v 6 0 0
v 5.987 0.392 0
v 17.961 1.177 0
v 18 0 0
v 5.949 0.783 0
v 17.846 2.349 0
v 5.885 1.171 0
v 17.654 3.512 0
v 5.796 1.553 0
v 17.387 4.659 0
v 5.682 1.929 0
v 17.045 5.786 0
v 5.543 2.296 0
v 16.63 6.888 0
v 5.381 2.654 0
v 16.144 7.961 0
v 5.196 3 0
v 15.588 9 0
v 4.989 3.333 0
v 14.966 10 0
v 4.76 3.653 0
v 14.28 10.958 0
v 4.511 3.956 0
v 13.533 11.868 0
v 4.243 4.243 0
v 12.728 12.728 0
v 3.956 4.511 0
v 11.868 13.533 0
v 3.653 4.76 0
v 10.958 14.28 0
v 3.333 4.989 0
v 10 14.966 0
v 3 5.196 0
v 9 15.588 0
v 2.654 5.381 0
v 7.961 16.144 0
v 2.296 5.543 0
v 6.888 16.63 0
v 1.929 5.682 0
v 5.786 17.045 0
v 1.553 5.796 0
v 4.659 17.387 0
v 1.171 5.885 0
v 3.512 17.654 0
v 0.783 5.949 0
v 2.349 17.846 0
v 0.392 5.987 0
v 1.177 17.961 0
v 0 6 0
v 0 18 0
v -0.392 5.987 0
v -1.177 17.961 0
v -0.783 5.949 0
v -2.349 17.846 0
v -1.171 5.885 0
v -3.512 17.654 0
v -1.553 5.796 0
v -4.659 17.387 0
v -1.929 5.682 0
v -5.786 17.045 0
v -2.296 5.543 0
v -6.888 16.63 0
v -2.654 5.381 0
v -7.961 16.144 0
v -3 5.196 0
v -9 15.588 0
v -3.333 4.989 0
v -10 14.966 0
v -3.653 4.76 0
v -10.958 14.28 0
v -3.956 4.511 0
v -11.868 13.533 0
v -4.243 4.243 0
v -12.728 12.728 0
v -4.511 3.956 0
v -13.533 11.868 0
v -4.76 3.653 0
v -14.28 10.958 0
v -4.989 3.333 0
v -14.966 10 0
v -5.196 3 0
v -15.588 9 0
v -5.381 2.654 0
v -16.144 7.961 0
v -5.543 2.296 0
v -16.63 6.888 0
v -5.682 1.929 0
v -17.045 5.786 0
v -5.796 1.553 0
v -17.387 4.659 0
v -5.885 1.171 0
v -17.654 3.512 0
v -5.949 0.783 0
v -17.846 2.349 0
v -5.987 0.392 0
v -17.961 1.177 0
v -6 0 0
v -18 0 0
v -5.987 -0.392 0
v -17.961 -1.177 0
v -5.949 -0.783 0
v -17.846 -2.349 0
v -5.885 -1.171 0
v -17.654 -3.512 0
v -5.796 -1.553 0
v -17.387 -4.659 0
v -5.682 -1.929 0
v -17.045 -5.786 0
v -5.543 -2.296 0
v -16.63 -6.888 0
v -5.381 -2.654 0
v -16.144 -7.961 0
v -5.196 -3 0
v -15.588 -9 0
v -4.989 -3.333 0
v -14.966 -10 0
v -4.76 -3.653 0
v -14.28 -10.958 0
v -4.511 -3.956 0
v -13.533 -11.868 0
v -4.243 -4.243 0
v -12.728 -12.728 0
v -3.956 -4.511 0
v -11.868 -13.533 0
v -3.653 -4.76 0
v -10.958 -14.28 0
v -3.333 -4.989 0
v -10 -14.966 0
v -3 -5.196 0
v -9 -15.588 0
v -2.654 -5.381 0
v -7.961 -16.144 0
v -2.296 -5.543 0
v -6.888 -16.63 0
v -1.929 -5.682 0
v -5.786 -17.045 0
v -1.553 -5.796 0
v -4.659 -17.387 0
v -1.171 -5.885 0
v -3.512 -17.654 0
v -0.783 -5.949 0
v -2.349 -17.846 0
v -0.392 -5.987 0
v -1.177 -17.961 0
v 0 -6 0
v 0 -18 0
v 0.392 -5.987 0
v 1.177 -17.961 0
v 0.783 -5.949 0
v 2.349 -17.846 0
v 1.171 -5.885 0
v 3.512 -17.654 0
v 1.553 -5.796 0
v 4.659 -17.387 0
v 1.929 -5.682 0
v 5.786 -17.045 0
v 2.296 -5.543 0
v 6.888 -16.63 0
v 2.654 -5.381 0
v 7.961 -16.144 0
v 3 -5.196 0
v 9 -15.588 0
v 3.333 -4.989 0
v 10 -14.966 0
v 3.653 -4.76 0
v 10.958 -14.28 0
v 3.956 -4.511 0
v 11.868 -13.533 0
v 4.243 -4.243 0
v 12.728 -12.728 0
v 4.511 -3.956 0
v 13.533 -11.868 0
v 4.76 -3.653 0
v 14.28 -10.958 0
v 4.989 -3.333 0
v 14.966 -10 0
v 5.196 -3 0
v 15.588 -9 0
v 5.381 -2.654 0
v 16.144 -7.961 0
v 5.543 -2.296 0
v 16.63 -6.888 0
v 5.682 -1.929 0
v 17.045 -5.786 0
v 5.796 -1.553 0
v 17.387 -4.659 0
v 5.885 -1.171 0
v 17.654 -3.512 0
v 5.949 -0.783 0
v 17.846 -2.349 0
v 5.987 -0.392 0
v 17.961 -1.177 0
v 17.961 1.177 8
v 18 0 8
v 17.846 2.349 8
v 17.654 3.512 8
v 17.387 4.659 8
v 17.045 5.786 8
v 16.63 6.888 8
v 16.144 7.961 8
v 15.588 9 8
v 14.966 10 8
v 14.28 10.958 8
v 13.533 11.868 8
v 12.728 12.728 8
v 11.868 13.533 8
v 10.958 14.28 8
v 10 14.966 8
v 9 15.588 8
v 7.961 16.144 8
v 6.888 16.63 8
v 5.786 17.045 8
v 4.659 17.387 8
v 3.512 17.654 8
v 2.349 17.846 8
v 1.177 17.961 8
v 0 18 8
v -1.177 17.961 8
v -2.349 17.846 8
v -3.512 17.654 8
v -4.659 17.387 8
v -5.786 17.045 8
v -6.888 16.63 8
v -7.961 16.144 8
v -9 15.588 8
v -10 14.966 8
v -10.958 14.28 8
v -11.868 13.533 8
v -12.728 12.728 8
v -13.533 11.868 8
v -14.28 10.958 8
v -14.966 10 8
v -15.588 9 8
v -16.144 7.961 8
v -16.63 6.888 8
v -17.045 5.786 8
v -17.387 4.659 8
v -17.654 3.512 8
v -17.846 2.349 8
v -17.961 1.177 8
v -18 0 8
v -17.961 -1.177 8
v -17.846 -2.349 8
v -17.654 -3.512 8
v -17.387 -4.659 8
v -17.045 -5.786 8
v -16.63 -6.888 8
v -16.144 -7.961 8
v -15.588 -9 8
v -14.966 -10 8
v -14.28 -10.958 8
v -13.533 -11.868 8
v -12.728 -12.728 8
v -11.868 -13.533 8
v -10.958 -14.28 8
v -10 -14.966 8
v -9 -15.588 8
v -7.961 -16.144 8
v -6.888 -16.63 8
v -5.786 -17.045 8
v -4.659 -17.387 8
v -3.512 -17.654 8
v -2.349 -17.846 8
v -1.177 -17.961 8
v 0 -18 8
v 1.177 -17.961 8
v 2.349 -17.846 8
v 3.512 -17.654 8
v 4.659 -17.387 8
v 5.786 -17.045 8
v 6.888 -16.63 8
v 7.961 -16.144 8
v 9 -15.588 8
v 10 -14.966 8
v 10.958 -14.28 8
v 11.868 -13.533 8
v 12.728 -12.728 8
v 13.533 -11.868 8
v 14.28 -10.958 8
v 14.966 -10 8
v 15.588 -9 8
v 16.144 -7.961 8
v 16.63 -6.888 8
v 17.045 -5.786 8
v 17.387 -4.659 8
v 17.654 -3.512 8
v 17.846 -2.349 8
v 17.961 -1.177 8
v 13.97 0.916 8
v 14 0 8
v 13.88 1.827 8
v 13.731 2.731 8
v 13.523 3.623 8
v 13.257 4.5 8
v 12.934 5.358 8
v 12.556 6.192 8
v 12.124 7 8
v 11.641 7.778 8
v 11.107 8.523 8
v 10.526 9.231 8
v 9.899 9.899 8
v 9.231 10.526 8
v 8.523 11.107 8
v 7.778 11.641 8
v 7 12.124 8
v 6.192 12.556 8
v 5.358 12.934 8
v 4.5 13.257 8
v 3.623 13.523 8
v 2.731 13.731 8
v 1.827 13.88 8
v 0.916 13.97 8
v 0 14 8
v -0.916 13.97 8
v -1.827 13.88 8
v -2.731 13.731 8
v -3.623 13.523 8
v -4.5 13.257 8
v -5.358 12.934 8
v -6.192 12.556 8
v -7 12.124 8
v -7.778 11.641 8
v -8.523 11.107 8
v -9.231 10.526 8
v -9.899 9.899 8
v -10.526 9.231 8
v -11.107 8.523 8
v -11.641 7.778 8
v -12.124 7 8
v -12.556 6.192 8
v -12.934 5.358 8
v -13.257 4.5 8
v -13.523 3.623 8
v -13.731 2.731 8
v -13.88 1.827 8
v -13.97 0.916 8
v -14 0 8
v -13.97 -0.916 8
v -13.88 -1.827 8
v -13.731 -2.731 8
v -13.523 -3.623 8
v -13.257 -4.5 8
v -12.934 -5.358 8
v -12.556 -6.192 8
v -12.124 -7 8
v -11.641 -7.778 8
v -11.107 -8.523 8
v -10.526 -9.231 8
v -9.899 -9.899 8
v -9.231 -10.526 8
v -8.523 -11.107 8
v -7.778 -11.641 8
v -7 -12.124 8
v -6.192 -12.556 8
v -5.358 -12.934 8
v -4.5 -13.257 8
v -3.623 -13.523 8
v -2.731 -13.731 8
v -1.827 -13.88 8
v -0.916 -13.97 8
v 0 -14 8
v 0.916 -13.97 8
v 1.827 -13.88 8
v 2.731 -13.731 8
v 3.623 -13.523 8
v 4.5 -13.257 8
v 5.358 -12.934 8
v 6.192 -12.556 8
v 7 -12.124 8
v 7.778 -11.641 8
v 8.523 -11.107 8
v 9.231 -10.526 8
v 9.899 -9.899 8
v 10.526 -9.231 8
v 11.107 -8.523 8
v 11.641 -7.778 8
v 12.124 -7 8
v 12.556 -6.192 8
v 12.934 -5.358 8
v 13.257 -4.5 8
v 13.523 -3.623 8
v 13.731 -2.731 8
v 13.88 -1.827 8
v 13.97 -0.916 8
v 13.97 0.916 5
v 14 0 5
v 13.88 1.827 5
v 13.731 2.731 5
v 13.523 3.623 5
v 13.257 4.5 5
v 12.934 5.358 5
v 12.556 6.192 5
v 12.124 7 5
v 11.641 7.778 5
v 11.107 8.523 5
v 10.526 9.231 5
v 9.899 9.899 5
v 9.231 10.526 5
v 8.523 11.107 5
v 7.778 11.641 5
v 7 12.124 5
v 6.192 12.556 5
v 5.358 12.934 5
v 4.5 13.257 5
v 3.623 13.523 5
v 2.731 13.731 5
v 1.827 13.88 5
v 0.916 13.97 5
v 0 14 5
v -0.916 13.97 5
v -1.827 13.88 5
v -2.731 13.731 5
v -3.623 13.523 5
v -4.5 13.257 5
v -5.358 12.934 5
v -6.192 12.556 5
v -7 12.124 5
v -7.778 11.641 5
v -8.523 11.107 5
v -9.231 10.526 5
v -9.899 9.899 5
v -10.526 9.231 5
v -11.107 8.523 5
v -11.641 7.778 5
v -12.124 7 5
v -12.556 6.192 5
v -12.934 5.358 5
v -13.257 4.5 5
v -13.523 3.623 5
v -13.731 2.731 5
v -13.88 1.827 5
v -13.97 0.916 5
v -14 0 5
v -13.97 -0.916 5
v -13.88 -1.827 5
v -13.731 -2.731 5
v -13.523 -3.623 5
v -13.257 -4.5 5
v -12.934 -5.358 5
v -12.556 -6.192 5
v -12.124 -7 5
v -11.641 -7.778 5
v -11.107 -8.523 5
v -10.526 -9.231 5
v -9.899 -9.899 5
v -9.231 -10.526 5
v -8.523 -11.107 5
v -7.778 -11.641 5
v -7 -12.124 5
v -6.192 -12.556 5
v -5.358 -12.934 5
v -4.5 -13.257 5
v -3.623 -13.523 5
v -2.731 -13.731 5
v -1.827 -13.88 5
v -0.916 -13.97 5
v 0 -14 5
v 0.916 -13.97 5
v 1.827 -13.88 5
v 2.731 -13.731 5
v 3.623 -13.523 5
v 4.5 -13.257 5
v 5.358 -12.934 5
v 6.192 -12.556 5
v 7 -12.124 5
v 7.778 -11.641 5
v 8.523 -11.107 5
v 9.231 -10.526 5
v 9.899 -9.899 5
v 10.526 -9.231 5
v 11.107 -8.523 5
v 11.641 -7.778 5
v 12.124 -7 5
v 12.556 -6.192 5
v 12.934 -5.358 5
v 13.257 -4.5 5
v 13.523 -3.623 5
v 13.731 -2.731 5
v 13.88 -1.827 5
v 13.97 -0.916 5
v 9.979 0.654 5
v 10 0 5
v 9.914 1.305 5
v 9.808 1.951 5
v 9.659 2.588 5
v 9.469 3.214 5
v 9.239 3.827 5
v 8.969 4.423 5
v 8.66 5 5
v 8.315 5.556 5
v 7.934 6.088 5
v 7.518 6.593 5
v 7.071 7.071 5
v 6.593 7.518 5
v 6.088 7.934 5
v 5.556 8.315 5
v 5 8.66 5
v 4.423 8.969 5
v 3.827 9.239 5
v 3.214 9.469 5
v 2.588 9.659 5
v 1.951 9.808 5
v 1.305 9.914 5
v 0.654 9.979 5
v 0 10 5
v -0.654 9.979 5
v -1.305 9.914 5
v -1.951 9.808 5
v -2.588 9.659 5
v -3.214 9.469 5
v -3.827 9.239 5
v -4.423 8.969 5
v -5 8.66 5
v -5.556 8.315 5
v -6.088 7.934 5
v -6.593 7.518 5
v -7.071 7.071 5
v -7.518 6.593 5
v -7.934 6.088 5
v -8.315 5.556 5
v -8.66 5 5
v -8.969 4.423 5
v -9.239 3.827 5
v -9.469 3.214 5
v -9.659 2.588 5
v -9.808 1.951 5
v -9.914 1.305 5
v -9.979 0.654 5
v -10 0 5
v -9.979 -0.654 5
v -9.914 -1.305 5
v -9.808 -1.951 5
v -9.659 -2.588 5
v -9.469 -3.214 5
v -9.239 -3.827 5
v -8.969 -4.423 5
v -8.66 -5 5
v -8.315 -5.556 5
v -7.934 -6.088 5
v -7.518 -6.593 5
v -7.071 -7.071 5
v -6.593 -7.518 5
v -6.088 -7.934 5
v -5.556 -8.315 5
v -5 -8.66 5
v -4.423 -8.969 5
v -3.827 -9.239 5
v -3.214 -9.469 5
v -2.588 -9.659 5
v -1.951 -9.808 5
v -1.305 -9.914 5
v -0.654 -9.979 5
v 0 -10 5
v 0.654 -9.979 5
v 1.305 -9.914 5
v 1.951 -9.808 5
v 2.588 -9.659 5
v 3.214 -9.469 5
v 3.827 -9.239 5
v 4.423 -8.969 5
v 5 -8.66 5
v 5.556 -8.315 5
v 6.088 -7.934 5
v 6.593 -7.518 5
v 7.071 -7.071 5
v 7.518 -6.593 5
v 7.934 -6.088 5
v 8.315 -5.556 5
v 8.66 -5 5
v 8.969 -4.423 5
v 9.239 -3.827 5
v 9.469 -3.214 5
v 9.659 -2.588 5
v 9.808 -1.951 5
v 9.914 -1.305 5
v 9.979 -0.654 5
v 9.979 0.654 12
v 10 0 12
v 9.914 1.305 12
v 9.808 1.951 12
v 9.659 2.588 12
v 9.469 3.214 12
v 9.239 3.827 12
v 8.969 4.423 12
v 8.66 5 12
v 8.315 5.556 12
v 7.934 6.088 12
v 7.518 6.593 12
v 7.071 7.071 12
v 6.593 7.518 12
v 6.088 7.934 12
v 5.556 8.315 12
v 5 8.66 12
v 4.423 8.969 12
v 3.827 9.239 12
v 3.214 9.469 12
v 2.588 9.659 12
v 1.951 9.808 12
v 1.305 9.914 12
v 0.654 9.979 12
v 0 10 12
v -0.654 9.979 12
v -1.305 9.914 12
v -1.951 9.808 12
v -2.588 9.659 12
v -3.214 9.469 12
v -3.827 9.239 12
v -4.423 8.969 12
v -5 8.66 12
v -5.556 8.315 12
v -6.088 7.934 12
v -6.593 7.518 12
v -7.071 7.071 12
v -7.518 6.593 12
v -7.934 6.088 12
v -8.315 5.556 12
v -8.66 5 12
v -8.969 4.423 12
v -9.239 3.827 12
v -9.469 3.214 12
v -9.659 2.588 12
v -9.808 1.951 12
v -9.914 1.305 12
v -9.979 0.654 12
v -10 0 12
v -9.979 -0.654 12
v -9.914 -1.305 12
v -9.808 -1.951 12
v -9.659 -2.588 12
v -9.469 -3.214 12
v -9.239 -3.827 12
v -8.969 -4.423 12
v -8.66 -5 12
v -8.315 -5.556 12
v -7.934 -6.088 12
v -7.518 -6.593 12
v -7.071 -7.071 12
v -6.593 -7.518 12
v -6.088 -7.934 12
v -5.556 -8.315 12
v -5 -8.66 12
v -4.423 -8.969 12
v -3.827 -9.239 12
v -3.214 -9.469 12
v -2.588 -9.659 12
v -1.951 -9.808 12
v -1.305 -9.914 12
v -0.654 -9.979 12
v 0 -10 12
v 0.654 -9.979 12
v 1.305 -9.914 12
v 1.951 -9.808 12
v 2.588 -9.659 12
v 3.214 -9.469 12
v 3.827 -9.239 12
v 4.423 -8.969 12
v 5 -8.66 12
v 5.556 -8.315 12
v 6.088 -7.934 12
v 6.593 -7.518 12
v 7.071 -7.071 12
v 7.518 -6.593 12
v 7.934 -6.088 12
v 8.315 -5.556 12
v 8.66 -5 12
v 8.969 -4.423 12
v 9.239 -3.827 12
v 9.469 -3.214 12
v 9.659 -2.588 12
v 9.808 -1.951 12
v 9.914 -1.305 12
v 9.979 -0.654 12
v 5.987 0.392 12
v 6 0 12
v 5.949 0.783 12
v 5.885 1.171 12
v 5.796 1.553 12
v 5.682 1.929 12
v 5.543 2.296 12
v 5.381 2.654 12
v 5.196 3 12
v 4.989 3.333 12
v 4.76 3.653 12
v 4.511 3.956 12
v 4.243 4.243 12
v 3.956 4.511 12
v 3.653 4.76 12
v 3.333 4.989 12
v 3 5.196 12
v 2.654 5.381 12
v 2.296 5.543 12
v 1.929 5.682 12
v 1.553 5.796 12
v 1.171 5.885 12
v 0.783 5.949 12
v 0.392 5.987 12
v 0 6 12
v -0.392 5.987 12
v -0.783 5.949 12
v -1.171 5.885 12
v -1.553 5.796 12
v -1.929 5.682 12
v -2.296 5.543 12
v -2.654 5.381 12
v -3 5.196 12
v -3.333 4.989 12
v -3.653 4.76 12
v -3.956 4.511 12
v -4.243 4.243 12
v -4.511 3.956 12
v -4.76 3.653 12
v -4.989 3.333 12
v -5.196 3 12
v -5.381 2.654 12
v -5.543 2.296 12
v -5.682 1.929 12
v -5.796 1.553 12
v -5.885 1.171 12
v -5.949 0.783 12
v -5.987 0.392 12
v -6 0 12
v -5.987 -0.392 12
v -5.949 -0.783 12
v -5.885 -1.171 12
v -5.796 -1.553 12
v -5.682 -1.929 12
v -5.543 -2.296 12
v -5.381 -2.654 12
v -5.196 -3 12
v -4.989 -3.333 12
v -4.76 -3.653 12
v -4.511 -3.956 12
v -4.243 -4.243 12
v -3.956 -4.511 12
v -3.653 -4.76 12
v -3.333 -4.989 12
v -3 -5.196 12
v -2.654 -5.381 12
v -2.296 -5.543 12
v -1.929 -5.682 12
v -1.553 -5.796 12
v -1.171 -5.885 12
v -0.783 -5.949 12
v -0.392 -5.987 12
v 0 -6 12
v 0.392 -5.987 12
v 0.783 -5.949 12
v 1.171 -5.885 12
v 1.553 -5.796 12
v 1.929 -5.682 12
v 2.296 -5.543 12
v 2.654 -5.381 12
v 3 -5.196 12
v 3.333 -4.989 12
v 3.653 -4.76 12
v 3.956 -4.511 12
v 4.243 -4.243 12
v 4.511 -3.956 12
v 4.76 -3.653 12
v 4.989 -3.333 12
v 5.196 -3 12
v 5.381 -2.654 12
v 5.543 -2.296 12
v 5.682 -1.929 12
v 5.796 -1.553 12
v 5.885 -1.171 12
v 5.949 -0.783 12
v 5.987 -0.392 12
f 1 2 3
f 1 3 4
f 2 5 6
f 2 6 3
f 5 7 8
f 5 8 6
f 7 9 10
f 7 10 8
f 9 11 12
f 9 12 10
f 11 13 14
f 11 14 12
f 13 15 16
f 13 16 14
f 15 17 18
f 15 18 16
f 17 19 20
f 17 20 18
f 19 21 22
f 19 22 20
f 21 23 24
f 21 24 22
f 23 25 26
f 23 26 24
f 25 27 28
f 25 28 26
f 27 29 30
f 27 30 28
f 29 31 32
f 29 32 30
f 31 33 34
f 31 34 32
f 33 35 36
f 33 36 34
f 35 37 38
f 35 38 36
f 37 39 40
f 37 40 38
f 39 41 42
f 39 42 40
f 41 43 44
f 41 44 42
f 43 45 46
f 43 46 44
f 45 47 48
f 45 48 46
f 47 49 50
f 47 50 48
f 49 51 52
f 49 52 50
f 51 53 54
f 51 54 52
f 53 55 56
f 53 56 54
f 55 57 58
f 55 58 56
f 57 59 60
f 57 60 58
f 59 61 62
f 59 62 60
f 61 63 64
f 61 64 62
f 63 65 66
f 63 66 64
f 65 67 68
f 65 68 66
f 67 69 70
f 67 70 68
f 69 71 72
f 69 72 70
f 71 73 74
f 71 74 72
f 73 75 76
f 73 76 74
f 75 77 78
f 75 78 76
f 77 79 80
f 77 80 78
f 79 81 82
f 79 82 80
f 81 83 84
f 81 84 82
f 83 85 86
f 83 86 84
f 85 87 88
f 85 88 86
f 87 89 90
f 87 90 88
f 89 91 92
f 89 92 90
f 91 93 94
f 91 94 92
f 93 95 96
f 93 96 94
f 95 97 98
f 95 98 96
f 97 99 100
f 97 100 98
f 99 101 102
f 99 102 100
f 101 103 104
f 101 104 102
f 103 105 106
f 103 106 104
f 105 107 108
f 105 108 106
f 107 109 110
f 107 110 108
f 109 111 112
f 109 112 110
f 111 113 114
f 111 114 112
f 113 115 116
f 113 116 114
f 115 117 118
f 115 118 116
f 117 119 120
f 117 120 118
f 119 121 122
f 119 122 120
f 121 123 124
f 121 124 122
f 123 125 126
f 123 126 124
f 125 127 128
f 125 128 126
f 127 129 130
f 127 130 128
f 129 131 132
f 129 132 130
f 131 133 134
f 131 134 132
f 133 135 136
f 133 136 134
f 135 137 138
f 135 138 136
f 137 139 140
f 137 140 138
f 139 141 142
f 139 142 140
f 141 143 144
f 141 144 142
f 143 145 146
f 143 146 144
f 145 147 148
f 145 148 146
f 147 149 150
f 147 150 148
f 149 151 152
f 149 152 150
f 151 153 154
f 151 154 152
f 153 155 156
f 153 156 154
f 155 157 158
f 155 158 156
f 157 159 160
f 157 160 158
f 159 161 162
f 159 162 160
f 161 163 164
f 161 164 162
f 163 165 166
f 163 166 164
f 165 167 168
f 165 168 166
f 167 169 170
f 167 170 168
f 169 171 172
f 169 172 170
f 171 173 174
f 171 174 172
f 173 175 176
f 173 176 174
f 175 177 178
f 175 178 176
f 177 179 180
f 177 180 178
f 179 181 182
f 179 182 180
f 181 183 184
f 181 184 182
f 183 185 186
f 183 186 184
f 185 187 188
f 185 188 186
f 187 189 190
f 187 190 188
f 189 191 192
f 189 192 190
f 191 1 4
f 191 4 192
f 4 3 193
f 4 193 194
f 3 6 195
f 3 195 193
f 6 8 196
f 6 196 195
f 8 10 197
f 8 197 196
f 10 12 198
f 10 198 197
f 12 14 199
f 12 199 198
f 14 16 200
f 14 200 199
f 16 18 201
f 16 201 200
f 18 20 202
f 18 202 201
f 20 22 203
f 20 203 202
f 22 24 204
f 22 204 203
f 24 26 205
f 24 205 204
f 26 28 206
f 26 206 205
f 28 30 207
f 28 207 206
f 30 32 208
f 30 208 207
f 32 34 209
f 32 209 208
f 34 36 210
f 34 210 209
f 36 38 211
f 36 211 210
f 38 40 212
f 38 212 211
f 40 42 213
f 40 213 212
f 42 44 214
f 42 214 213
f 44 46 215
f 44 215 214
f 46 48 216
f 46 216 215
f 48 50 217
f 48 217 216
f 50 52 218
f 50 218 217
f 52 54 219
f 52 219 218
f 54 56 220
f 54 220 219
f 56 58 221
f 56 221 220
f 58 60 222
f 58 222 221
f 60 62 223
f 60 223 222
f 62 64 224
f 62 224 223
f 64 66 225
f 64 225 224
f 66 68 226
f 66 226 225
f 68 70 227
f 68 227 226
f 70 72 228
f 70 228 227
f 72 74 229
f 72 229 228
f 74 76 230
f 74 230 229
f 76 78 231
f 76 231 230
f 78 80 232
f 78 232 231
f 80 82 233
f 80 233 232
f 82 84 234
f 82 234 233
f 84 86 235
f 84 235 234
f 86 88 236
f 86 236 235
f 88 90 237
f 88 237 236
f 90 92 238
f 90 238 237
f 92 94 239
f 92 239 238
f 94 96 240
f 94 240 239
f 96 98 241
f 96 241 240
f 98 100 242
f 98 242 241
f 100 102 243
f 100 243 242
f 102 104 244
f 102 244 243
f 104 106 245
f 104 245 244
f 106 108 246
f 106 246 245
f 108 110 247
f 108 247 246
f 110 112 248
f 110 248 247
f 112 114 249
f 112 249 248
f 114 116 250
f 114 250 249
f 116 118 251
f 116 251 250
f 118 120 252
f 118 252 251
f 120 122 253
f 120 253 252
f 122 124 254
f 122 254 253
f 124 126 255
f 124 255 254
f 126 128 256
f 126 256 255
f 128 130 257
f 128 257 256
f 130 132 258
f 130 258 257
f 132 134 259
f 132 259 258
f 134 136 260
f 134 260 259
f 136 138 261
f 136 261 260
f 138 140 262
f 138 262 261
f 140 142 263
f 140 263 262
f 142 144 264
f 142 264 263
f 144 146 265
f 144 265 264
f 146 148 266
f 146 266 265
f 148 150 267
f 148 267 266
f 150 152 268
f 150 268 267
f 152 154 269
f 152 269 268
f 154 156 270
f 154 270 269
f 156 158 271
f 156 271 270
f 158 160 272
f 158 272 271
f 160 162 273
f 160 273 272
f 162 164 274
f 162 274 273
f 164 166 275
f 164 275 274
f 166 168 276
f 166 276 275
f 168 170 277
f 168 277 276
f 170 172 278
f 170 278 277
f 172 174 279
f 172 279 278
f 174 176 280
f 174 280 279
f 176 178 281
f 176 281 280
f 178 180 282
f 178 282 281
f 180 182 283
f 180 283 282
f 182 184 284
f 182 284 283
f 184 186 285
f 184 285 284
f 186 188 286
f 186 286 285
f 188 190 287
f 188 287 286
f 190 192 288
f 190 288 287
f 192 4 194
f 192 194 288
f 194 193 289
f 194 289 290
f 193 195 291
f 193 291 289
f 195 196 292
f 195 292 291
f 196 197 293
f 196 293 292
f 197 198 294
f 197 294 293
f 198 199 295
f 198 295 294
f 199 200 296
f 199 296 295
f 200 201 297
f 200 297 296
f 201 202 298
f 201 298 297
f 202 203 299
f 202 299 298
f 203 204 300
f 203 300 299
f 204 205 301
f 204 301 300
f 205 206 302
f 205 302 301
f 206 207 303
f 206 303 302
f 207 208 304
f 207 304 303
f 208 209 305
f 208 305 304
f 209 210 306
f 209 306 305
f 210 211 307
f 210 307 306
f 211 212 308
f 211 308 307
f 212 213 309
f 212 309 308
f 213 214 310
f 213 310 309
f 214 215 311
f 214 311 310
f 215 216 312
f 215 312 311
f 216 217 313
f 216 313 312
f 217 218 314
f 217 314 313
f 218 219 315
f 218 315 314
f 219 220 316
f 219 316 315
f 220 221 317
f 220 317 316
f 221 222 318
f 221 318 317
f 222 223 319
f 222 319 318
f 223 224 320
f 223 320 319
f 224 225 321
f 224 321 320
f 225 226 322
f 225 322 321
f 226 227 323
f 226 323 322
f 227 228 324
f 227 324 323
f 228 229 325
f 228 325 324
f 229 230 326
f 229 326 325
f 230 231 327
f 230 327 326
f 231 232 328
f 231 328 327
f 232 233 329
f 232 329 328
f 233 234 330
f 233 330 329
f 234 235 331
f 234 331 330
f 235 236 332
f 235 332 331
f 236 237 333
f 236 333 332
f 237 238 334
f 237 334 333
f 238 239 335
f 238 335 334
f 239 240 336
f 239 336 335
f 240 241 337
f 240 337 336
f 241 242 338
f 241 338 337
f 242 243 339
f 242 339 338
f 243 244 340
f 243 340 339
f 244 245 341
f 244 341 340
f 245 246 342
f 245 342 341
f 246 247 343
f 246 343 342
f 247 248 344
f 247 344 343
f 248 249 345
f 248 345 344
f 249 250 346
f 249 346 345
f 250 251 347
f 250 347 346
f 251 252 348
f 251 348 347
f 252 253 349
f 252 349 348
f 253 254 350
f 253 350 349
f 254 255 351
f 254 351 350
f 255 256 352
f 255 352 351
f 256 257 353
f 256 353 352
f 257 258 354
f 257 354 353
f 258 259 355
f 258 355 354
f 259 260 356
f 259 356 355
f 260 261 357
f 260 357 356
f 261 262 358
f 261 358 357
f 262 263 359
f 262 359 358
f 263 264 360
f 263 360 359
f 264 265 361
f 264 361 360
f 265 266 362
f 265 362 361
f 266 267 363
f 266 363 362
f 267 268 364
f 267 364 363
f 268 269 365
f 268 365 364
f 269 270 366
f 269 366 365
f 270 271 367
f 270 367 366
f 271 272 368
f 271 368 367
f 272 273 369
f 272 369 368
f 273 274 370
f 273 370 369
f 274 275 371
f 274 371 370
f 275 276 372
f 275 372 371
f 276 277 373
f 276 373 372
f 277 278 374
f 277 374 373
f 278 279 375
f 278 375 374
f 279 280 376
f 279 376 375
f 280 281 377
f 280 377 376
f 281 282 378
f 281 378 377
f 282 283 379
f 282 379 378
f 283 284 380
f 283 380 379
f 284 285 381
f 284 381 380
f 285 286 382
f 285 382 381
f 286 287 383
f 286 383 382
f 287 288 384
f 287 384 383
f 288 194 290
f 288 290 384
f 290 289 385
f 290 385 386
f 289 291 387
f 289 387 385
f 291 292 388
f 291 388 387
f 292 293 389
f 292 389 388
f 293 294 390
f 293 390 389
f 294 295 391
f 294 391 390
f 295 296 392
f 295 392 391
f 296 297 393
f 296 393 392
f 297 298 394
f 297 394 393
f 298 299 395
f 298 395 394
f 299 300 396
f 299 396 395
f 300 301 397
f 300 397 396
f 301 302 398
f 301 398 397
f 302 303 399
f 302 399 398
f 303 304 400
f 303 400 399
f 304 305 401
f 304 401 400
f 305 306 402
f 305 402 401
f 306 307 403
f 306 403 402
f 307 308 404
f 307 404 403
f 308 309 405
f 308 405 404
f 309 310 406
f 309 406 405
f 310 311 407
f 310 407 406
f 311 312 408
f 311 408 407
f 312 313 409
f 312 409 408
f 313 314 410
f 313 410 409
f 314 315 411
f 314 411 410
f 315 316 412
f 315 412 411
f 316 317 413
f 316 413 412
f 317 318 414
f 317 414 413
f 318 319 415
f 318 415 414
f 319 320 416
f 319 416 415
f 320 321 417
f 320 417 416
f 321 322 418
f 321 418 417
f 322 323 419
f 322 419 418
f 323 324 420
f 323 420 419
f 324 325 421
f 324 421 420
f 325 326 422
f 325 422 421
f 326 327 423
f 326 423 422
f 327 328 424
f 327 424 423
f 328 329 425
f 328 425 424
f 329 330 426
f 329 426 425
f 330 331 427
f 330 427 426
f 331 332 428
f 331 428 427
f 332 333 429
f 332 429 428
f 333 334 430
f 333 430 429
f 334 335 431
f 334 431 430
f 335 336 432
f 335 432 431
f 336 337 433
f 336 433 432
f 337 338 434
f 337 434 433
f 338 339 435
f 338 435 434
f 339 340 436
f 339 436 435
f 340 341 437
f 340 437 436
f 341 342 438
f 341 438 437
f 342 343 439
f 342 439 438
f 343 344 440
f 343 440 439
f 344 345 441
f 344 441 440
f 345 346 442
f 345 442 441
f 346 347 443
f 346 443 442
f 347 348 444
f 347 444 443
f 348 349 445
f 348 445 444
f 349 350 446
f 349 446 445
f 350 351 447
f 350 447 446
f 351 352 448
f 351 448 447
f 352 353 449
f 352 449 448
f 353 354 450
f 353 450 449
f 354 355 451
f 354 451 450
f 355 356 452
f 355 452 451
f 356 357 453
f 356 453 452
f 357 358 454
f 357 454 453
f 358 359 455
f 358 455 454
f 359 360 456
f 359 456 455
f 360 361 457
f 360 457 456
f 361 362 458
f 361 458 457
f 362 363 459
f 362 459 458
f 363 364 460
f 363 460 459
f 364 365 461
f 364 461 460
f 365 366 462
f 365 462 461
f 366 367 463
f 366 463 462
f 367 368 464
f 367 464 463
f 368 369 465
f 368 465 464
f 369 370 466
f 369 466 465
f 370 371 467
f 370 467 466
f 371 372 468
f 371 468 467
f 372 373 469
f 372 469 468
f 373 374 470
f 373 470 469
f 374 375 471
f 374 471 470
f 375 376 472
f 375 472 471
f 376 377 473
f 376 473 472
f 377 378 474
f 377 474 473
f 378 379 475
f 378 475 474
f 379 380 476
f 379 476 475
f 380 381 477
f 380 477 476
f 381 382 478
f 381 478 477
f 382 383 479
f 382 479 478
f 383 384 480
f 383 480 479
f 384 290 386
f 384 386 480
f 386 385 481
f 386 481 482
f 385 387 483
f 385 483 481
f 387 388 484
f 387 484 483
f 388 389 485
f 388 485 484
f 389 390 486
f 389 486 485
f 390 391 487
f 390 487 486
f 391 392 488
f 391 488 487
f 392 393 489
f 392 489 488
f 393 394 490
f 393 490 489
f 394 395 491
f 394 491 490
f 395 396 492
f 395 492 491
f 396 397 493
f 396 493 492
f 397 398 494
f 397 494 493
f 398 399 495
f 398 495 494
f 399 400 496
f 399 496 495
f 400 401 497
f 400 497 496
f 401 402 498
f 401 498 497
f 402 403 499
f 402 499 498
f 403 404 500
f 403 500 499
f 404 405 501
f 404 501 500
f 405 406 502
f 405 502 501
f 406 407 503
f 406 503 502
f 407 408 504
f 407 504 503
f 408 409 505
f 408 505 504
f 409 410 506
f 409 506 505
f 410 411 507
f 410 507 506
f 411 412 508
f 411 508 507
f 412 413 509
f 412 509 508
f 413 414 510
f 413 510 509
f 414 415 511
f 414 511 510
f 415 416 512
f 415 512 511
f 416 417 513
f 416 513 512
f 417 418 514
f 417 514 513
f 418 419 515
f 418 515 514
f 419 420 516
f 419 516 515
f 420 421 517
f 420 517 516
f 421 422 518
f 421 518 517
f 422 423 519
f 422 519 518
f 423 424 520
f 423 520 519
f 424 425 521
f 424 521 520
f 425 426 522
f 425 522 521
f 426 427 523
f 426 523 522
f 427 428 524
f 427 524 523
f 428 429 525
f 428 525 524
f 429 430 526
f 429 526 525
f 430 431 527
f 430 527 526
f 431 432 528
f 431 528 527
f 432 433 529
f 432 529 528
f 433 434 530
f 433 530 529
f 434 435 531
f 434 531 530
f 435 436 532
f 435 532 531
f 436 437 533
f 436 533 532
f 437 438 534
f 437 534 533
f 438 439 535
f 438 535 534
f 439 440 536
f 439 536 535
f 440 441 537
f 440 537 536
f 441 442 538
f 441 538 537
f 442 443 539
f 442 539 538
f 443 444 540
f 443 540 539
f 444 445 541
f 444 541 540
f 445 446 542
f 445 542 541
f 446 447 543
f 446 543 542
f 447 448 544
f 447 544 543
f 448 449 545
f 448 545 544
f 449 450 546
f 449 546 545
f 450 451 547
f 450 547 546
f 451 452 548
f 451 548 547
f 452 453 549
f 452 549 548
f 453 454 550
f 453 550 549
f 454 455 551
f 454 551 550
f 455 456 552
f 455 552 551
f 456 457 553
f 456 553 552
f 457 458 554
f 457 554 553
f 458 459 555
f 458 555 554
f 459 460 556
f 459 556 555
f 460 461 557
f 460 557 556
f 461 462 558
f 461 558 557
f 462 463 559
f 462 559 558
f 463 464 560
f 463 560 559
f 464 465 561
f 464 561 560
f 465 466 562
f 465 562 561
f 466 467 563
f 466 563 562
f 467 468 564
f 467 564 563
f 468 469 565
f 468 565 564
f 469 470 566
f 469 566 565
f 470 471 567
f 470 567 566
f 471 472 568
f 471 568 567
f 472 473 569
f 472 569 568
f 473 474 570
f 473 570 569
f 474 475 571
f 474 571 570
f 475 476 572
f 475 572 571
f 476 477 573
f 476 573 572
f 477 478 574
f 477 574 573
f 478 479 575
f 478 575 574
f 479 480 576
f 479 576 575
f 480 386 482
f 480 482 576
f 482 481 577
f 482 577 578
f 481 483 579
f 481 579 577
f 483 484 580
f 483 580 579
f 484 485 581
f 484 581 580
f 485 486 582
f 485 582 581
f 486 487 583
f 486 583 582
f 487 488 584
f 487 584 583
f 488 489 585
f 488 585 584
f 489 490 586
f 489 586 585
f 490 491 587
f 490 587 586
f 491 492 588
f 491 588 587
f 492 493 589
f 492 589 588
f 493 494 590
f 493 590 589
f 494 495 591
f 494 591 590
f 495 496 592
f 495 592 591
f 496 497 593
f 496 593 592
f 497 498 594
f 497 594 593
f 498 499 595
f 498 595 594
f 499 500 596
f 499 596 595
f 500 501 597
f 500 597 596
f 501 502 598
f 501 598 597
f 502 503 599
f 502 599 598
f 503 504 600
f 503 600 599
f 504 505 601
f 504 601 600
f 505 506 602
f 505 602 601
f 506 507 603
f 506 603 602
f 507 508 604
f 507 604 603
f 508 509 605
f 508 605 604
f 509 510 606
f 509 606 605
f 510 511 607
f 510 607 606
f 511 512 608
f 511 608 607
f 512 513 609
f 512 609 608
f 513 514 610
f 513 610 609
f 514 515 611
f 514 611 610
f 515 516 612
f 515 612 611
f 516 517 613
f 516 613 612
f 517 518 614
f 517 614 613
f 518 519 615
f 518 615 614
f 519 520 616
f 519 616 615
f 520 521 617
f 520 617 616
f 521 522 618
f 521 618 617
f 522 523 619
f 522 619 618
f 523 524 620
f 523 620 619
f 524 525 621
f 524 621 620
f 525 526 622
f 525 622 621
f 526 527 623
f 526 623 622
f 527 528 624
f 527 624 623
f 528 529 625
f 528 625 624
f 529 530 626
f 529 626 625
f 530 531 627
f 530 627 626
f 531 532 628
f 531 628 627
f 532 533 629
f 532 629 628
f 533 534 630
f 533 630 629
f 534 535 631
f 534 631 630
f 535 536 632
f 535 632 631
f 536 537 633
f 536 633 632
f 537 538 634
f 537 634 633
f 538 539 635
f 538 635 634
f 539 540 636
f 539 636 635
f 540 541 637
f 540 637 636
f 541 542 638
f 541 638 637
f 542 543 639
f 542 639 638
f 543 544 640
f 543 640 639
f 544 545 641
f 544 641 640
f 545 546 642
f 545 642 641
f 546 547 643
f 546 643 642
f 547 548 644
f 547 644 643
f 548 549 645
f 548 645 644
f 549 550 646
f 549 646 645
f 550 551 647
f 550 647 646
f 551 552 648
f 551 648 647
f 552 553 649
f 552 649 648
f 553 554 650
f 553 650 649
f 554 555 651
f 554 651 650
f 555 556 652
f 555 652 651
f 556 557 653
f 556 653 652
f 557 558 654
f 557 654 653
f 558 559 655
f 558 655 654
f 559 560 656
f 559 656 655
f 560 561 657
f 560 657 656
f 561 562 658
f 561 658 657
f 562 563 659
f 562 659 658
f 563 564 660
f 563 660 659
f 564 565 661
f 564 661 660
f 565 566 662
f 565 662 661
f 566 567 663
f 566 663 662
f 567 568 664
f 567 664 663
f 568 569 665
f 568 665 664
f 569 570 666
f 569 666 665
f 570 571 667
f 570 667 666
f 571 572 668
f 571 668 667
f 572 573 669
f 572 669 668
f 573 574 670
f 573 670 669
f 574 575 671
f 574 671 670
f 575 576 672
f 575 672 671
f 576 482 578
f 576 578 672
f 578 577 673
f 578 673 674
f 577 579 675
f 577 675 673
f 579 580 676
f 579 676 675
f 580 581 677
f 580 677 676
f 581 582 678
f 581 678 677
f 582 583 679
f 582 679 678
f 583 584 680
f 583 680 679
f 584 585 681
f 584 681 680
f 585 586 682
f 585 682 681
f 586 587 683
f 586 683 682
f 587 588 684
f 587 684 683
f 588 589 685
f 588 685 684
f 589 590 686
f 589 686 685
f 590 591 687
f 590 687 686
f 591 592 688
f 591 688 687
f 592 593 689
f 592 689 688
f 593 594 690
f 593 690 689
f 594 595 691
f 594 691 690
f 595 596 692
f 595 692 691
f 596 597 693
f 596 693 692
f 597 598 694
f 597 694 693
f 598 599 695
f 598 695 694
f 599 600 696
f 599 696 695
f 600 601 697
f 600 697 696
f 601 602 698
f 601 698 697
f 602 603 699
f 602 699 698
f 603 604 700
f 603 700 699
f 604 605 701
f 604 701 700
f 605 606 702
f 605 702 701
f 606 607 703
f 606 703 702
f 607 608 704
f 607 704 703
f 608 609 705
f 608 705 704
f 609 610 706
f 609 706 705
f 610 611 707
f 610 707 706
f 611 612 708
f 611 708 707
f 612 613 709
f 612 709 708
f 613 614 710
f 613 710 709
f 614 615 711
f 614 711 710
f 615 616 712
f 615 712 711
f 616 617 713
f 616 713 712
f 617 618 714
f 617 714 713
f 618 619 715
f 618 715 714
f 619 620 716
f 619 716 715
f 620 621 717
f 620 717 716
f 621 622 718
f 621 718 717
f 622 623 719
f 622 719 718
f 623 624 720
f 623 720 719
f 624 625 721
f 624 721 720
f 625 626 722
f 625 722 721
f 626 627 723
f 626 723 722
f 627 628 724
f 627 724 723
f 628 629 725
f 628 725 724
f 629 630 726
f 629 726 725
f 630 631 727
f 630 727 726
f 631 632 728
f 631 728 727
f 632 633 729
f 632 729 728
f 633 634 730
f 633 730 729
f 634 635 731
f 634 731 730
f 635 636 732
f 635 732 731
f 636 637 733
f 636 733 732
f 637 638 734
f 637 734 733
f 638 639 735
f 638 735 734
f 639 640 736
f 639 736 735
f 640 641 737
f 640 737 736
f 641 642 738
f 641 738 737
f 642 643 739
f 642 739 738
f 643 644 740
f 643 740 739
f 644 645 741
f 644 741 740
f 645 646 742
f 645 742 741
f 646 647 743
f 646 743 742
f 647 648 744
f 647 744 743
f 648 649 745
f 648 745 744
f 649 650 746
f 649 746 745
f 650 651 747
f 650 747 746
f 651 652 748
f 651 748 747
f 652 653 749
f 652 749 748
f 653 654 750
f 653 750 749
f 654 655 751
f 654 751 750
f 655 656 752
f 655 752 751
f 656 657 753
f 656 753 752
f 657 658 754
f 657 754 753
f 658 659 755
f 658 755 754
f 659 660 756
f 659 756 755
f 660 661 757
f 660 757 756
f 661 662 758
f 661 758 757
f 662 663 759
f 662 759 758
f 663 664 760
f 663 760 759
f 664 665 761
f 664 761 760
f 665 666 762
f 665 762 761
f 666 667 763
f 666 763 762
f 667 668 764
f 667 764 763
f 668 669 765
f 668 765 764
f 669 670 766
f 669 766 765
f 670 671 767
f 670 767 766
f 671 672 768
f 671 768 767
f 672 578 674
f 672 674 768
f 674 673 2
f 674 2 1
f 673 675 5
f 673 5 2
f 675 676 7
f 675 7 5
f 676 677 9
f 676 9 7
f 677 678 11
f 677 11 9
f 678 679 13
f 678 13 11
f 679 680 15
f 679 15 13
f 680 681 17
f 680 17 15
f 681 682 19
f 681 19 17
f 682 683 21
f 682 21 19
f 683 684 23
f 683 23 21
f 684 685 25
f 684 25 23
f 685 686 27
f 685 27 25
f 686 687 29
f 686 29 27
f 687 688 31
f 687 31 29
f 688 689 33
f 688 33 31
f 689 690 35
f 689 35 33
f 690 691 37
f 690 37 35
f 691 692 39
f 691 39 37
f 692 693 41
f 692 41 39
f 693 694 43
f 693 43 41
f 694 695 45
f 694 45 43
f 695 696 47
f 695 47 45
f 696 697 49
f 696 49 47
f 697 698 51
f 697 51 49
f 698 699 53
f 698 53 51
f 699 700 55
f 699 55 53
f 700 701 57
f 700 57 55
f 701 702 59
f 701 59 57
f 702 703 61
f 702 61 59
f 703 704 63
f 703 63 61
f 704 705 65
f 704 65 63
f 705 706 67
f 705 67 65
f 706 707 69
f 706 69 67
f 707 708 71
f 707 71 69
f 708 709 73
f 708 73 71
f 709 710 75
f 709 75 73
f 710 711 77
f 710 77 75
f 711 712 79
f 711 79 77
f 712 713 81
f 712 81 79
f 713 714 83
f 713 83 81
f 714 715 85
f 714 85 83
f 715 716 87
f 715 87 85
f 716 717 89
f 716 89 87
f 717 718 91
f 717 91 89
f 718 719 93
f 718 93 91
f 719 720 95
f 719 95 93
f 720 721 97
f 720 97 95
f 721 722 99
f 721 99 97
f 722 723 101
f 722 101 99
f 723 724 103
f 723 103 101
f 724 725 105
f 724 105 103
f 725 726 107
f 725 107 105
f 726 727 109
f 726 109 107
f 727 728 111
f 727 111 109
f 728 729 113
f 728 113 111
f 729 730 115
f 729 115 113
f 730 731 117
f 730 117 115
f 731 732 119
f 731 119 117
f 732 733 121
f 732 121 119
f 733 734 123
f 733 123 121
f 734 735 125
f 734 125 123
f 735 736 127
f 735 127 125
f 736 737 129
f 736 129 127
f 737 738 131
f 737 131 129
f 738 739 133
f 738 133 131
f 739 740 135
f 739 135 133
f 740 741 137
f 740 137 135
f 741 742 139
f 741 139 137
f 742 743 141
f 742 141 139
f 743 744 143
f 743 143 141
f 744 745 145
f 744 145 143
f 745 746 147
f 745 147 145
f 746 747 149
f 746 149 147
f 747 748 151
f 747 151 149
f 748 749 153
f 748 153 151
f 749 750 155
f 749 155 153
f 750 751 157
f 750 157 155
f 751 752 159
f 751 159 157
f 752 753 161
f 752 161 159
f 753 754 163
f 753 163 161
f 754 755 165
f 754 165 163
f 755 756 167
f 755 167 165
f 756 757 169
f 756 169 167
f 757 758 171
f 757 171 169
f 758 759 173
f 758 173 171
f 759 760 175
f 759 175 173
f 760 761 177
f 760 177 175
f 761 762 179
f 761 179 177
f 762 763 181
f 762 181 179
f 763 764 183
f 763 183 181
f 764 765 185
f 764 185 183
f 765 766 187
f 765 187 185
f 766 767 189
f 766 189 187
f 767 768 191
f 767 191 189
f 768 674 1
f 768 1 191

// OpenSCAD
// Original MechIntel educational model. CC0-1.0. Units: mm.
// Not a standardized or load-rated component.
$fn=96;
// Section points: [radius, height], mm. Edit to change the profile.
section=[[6, 0], [18, 0], [18, 8], [14, 8], [14, 5], [10, 5], [10, 12], [6, 12]];
rotate_extrude($fn=96) polygon(points=section);
